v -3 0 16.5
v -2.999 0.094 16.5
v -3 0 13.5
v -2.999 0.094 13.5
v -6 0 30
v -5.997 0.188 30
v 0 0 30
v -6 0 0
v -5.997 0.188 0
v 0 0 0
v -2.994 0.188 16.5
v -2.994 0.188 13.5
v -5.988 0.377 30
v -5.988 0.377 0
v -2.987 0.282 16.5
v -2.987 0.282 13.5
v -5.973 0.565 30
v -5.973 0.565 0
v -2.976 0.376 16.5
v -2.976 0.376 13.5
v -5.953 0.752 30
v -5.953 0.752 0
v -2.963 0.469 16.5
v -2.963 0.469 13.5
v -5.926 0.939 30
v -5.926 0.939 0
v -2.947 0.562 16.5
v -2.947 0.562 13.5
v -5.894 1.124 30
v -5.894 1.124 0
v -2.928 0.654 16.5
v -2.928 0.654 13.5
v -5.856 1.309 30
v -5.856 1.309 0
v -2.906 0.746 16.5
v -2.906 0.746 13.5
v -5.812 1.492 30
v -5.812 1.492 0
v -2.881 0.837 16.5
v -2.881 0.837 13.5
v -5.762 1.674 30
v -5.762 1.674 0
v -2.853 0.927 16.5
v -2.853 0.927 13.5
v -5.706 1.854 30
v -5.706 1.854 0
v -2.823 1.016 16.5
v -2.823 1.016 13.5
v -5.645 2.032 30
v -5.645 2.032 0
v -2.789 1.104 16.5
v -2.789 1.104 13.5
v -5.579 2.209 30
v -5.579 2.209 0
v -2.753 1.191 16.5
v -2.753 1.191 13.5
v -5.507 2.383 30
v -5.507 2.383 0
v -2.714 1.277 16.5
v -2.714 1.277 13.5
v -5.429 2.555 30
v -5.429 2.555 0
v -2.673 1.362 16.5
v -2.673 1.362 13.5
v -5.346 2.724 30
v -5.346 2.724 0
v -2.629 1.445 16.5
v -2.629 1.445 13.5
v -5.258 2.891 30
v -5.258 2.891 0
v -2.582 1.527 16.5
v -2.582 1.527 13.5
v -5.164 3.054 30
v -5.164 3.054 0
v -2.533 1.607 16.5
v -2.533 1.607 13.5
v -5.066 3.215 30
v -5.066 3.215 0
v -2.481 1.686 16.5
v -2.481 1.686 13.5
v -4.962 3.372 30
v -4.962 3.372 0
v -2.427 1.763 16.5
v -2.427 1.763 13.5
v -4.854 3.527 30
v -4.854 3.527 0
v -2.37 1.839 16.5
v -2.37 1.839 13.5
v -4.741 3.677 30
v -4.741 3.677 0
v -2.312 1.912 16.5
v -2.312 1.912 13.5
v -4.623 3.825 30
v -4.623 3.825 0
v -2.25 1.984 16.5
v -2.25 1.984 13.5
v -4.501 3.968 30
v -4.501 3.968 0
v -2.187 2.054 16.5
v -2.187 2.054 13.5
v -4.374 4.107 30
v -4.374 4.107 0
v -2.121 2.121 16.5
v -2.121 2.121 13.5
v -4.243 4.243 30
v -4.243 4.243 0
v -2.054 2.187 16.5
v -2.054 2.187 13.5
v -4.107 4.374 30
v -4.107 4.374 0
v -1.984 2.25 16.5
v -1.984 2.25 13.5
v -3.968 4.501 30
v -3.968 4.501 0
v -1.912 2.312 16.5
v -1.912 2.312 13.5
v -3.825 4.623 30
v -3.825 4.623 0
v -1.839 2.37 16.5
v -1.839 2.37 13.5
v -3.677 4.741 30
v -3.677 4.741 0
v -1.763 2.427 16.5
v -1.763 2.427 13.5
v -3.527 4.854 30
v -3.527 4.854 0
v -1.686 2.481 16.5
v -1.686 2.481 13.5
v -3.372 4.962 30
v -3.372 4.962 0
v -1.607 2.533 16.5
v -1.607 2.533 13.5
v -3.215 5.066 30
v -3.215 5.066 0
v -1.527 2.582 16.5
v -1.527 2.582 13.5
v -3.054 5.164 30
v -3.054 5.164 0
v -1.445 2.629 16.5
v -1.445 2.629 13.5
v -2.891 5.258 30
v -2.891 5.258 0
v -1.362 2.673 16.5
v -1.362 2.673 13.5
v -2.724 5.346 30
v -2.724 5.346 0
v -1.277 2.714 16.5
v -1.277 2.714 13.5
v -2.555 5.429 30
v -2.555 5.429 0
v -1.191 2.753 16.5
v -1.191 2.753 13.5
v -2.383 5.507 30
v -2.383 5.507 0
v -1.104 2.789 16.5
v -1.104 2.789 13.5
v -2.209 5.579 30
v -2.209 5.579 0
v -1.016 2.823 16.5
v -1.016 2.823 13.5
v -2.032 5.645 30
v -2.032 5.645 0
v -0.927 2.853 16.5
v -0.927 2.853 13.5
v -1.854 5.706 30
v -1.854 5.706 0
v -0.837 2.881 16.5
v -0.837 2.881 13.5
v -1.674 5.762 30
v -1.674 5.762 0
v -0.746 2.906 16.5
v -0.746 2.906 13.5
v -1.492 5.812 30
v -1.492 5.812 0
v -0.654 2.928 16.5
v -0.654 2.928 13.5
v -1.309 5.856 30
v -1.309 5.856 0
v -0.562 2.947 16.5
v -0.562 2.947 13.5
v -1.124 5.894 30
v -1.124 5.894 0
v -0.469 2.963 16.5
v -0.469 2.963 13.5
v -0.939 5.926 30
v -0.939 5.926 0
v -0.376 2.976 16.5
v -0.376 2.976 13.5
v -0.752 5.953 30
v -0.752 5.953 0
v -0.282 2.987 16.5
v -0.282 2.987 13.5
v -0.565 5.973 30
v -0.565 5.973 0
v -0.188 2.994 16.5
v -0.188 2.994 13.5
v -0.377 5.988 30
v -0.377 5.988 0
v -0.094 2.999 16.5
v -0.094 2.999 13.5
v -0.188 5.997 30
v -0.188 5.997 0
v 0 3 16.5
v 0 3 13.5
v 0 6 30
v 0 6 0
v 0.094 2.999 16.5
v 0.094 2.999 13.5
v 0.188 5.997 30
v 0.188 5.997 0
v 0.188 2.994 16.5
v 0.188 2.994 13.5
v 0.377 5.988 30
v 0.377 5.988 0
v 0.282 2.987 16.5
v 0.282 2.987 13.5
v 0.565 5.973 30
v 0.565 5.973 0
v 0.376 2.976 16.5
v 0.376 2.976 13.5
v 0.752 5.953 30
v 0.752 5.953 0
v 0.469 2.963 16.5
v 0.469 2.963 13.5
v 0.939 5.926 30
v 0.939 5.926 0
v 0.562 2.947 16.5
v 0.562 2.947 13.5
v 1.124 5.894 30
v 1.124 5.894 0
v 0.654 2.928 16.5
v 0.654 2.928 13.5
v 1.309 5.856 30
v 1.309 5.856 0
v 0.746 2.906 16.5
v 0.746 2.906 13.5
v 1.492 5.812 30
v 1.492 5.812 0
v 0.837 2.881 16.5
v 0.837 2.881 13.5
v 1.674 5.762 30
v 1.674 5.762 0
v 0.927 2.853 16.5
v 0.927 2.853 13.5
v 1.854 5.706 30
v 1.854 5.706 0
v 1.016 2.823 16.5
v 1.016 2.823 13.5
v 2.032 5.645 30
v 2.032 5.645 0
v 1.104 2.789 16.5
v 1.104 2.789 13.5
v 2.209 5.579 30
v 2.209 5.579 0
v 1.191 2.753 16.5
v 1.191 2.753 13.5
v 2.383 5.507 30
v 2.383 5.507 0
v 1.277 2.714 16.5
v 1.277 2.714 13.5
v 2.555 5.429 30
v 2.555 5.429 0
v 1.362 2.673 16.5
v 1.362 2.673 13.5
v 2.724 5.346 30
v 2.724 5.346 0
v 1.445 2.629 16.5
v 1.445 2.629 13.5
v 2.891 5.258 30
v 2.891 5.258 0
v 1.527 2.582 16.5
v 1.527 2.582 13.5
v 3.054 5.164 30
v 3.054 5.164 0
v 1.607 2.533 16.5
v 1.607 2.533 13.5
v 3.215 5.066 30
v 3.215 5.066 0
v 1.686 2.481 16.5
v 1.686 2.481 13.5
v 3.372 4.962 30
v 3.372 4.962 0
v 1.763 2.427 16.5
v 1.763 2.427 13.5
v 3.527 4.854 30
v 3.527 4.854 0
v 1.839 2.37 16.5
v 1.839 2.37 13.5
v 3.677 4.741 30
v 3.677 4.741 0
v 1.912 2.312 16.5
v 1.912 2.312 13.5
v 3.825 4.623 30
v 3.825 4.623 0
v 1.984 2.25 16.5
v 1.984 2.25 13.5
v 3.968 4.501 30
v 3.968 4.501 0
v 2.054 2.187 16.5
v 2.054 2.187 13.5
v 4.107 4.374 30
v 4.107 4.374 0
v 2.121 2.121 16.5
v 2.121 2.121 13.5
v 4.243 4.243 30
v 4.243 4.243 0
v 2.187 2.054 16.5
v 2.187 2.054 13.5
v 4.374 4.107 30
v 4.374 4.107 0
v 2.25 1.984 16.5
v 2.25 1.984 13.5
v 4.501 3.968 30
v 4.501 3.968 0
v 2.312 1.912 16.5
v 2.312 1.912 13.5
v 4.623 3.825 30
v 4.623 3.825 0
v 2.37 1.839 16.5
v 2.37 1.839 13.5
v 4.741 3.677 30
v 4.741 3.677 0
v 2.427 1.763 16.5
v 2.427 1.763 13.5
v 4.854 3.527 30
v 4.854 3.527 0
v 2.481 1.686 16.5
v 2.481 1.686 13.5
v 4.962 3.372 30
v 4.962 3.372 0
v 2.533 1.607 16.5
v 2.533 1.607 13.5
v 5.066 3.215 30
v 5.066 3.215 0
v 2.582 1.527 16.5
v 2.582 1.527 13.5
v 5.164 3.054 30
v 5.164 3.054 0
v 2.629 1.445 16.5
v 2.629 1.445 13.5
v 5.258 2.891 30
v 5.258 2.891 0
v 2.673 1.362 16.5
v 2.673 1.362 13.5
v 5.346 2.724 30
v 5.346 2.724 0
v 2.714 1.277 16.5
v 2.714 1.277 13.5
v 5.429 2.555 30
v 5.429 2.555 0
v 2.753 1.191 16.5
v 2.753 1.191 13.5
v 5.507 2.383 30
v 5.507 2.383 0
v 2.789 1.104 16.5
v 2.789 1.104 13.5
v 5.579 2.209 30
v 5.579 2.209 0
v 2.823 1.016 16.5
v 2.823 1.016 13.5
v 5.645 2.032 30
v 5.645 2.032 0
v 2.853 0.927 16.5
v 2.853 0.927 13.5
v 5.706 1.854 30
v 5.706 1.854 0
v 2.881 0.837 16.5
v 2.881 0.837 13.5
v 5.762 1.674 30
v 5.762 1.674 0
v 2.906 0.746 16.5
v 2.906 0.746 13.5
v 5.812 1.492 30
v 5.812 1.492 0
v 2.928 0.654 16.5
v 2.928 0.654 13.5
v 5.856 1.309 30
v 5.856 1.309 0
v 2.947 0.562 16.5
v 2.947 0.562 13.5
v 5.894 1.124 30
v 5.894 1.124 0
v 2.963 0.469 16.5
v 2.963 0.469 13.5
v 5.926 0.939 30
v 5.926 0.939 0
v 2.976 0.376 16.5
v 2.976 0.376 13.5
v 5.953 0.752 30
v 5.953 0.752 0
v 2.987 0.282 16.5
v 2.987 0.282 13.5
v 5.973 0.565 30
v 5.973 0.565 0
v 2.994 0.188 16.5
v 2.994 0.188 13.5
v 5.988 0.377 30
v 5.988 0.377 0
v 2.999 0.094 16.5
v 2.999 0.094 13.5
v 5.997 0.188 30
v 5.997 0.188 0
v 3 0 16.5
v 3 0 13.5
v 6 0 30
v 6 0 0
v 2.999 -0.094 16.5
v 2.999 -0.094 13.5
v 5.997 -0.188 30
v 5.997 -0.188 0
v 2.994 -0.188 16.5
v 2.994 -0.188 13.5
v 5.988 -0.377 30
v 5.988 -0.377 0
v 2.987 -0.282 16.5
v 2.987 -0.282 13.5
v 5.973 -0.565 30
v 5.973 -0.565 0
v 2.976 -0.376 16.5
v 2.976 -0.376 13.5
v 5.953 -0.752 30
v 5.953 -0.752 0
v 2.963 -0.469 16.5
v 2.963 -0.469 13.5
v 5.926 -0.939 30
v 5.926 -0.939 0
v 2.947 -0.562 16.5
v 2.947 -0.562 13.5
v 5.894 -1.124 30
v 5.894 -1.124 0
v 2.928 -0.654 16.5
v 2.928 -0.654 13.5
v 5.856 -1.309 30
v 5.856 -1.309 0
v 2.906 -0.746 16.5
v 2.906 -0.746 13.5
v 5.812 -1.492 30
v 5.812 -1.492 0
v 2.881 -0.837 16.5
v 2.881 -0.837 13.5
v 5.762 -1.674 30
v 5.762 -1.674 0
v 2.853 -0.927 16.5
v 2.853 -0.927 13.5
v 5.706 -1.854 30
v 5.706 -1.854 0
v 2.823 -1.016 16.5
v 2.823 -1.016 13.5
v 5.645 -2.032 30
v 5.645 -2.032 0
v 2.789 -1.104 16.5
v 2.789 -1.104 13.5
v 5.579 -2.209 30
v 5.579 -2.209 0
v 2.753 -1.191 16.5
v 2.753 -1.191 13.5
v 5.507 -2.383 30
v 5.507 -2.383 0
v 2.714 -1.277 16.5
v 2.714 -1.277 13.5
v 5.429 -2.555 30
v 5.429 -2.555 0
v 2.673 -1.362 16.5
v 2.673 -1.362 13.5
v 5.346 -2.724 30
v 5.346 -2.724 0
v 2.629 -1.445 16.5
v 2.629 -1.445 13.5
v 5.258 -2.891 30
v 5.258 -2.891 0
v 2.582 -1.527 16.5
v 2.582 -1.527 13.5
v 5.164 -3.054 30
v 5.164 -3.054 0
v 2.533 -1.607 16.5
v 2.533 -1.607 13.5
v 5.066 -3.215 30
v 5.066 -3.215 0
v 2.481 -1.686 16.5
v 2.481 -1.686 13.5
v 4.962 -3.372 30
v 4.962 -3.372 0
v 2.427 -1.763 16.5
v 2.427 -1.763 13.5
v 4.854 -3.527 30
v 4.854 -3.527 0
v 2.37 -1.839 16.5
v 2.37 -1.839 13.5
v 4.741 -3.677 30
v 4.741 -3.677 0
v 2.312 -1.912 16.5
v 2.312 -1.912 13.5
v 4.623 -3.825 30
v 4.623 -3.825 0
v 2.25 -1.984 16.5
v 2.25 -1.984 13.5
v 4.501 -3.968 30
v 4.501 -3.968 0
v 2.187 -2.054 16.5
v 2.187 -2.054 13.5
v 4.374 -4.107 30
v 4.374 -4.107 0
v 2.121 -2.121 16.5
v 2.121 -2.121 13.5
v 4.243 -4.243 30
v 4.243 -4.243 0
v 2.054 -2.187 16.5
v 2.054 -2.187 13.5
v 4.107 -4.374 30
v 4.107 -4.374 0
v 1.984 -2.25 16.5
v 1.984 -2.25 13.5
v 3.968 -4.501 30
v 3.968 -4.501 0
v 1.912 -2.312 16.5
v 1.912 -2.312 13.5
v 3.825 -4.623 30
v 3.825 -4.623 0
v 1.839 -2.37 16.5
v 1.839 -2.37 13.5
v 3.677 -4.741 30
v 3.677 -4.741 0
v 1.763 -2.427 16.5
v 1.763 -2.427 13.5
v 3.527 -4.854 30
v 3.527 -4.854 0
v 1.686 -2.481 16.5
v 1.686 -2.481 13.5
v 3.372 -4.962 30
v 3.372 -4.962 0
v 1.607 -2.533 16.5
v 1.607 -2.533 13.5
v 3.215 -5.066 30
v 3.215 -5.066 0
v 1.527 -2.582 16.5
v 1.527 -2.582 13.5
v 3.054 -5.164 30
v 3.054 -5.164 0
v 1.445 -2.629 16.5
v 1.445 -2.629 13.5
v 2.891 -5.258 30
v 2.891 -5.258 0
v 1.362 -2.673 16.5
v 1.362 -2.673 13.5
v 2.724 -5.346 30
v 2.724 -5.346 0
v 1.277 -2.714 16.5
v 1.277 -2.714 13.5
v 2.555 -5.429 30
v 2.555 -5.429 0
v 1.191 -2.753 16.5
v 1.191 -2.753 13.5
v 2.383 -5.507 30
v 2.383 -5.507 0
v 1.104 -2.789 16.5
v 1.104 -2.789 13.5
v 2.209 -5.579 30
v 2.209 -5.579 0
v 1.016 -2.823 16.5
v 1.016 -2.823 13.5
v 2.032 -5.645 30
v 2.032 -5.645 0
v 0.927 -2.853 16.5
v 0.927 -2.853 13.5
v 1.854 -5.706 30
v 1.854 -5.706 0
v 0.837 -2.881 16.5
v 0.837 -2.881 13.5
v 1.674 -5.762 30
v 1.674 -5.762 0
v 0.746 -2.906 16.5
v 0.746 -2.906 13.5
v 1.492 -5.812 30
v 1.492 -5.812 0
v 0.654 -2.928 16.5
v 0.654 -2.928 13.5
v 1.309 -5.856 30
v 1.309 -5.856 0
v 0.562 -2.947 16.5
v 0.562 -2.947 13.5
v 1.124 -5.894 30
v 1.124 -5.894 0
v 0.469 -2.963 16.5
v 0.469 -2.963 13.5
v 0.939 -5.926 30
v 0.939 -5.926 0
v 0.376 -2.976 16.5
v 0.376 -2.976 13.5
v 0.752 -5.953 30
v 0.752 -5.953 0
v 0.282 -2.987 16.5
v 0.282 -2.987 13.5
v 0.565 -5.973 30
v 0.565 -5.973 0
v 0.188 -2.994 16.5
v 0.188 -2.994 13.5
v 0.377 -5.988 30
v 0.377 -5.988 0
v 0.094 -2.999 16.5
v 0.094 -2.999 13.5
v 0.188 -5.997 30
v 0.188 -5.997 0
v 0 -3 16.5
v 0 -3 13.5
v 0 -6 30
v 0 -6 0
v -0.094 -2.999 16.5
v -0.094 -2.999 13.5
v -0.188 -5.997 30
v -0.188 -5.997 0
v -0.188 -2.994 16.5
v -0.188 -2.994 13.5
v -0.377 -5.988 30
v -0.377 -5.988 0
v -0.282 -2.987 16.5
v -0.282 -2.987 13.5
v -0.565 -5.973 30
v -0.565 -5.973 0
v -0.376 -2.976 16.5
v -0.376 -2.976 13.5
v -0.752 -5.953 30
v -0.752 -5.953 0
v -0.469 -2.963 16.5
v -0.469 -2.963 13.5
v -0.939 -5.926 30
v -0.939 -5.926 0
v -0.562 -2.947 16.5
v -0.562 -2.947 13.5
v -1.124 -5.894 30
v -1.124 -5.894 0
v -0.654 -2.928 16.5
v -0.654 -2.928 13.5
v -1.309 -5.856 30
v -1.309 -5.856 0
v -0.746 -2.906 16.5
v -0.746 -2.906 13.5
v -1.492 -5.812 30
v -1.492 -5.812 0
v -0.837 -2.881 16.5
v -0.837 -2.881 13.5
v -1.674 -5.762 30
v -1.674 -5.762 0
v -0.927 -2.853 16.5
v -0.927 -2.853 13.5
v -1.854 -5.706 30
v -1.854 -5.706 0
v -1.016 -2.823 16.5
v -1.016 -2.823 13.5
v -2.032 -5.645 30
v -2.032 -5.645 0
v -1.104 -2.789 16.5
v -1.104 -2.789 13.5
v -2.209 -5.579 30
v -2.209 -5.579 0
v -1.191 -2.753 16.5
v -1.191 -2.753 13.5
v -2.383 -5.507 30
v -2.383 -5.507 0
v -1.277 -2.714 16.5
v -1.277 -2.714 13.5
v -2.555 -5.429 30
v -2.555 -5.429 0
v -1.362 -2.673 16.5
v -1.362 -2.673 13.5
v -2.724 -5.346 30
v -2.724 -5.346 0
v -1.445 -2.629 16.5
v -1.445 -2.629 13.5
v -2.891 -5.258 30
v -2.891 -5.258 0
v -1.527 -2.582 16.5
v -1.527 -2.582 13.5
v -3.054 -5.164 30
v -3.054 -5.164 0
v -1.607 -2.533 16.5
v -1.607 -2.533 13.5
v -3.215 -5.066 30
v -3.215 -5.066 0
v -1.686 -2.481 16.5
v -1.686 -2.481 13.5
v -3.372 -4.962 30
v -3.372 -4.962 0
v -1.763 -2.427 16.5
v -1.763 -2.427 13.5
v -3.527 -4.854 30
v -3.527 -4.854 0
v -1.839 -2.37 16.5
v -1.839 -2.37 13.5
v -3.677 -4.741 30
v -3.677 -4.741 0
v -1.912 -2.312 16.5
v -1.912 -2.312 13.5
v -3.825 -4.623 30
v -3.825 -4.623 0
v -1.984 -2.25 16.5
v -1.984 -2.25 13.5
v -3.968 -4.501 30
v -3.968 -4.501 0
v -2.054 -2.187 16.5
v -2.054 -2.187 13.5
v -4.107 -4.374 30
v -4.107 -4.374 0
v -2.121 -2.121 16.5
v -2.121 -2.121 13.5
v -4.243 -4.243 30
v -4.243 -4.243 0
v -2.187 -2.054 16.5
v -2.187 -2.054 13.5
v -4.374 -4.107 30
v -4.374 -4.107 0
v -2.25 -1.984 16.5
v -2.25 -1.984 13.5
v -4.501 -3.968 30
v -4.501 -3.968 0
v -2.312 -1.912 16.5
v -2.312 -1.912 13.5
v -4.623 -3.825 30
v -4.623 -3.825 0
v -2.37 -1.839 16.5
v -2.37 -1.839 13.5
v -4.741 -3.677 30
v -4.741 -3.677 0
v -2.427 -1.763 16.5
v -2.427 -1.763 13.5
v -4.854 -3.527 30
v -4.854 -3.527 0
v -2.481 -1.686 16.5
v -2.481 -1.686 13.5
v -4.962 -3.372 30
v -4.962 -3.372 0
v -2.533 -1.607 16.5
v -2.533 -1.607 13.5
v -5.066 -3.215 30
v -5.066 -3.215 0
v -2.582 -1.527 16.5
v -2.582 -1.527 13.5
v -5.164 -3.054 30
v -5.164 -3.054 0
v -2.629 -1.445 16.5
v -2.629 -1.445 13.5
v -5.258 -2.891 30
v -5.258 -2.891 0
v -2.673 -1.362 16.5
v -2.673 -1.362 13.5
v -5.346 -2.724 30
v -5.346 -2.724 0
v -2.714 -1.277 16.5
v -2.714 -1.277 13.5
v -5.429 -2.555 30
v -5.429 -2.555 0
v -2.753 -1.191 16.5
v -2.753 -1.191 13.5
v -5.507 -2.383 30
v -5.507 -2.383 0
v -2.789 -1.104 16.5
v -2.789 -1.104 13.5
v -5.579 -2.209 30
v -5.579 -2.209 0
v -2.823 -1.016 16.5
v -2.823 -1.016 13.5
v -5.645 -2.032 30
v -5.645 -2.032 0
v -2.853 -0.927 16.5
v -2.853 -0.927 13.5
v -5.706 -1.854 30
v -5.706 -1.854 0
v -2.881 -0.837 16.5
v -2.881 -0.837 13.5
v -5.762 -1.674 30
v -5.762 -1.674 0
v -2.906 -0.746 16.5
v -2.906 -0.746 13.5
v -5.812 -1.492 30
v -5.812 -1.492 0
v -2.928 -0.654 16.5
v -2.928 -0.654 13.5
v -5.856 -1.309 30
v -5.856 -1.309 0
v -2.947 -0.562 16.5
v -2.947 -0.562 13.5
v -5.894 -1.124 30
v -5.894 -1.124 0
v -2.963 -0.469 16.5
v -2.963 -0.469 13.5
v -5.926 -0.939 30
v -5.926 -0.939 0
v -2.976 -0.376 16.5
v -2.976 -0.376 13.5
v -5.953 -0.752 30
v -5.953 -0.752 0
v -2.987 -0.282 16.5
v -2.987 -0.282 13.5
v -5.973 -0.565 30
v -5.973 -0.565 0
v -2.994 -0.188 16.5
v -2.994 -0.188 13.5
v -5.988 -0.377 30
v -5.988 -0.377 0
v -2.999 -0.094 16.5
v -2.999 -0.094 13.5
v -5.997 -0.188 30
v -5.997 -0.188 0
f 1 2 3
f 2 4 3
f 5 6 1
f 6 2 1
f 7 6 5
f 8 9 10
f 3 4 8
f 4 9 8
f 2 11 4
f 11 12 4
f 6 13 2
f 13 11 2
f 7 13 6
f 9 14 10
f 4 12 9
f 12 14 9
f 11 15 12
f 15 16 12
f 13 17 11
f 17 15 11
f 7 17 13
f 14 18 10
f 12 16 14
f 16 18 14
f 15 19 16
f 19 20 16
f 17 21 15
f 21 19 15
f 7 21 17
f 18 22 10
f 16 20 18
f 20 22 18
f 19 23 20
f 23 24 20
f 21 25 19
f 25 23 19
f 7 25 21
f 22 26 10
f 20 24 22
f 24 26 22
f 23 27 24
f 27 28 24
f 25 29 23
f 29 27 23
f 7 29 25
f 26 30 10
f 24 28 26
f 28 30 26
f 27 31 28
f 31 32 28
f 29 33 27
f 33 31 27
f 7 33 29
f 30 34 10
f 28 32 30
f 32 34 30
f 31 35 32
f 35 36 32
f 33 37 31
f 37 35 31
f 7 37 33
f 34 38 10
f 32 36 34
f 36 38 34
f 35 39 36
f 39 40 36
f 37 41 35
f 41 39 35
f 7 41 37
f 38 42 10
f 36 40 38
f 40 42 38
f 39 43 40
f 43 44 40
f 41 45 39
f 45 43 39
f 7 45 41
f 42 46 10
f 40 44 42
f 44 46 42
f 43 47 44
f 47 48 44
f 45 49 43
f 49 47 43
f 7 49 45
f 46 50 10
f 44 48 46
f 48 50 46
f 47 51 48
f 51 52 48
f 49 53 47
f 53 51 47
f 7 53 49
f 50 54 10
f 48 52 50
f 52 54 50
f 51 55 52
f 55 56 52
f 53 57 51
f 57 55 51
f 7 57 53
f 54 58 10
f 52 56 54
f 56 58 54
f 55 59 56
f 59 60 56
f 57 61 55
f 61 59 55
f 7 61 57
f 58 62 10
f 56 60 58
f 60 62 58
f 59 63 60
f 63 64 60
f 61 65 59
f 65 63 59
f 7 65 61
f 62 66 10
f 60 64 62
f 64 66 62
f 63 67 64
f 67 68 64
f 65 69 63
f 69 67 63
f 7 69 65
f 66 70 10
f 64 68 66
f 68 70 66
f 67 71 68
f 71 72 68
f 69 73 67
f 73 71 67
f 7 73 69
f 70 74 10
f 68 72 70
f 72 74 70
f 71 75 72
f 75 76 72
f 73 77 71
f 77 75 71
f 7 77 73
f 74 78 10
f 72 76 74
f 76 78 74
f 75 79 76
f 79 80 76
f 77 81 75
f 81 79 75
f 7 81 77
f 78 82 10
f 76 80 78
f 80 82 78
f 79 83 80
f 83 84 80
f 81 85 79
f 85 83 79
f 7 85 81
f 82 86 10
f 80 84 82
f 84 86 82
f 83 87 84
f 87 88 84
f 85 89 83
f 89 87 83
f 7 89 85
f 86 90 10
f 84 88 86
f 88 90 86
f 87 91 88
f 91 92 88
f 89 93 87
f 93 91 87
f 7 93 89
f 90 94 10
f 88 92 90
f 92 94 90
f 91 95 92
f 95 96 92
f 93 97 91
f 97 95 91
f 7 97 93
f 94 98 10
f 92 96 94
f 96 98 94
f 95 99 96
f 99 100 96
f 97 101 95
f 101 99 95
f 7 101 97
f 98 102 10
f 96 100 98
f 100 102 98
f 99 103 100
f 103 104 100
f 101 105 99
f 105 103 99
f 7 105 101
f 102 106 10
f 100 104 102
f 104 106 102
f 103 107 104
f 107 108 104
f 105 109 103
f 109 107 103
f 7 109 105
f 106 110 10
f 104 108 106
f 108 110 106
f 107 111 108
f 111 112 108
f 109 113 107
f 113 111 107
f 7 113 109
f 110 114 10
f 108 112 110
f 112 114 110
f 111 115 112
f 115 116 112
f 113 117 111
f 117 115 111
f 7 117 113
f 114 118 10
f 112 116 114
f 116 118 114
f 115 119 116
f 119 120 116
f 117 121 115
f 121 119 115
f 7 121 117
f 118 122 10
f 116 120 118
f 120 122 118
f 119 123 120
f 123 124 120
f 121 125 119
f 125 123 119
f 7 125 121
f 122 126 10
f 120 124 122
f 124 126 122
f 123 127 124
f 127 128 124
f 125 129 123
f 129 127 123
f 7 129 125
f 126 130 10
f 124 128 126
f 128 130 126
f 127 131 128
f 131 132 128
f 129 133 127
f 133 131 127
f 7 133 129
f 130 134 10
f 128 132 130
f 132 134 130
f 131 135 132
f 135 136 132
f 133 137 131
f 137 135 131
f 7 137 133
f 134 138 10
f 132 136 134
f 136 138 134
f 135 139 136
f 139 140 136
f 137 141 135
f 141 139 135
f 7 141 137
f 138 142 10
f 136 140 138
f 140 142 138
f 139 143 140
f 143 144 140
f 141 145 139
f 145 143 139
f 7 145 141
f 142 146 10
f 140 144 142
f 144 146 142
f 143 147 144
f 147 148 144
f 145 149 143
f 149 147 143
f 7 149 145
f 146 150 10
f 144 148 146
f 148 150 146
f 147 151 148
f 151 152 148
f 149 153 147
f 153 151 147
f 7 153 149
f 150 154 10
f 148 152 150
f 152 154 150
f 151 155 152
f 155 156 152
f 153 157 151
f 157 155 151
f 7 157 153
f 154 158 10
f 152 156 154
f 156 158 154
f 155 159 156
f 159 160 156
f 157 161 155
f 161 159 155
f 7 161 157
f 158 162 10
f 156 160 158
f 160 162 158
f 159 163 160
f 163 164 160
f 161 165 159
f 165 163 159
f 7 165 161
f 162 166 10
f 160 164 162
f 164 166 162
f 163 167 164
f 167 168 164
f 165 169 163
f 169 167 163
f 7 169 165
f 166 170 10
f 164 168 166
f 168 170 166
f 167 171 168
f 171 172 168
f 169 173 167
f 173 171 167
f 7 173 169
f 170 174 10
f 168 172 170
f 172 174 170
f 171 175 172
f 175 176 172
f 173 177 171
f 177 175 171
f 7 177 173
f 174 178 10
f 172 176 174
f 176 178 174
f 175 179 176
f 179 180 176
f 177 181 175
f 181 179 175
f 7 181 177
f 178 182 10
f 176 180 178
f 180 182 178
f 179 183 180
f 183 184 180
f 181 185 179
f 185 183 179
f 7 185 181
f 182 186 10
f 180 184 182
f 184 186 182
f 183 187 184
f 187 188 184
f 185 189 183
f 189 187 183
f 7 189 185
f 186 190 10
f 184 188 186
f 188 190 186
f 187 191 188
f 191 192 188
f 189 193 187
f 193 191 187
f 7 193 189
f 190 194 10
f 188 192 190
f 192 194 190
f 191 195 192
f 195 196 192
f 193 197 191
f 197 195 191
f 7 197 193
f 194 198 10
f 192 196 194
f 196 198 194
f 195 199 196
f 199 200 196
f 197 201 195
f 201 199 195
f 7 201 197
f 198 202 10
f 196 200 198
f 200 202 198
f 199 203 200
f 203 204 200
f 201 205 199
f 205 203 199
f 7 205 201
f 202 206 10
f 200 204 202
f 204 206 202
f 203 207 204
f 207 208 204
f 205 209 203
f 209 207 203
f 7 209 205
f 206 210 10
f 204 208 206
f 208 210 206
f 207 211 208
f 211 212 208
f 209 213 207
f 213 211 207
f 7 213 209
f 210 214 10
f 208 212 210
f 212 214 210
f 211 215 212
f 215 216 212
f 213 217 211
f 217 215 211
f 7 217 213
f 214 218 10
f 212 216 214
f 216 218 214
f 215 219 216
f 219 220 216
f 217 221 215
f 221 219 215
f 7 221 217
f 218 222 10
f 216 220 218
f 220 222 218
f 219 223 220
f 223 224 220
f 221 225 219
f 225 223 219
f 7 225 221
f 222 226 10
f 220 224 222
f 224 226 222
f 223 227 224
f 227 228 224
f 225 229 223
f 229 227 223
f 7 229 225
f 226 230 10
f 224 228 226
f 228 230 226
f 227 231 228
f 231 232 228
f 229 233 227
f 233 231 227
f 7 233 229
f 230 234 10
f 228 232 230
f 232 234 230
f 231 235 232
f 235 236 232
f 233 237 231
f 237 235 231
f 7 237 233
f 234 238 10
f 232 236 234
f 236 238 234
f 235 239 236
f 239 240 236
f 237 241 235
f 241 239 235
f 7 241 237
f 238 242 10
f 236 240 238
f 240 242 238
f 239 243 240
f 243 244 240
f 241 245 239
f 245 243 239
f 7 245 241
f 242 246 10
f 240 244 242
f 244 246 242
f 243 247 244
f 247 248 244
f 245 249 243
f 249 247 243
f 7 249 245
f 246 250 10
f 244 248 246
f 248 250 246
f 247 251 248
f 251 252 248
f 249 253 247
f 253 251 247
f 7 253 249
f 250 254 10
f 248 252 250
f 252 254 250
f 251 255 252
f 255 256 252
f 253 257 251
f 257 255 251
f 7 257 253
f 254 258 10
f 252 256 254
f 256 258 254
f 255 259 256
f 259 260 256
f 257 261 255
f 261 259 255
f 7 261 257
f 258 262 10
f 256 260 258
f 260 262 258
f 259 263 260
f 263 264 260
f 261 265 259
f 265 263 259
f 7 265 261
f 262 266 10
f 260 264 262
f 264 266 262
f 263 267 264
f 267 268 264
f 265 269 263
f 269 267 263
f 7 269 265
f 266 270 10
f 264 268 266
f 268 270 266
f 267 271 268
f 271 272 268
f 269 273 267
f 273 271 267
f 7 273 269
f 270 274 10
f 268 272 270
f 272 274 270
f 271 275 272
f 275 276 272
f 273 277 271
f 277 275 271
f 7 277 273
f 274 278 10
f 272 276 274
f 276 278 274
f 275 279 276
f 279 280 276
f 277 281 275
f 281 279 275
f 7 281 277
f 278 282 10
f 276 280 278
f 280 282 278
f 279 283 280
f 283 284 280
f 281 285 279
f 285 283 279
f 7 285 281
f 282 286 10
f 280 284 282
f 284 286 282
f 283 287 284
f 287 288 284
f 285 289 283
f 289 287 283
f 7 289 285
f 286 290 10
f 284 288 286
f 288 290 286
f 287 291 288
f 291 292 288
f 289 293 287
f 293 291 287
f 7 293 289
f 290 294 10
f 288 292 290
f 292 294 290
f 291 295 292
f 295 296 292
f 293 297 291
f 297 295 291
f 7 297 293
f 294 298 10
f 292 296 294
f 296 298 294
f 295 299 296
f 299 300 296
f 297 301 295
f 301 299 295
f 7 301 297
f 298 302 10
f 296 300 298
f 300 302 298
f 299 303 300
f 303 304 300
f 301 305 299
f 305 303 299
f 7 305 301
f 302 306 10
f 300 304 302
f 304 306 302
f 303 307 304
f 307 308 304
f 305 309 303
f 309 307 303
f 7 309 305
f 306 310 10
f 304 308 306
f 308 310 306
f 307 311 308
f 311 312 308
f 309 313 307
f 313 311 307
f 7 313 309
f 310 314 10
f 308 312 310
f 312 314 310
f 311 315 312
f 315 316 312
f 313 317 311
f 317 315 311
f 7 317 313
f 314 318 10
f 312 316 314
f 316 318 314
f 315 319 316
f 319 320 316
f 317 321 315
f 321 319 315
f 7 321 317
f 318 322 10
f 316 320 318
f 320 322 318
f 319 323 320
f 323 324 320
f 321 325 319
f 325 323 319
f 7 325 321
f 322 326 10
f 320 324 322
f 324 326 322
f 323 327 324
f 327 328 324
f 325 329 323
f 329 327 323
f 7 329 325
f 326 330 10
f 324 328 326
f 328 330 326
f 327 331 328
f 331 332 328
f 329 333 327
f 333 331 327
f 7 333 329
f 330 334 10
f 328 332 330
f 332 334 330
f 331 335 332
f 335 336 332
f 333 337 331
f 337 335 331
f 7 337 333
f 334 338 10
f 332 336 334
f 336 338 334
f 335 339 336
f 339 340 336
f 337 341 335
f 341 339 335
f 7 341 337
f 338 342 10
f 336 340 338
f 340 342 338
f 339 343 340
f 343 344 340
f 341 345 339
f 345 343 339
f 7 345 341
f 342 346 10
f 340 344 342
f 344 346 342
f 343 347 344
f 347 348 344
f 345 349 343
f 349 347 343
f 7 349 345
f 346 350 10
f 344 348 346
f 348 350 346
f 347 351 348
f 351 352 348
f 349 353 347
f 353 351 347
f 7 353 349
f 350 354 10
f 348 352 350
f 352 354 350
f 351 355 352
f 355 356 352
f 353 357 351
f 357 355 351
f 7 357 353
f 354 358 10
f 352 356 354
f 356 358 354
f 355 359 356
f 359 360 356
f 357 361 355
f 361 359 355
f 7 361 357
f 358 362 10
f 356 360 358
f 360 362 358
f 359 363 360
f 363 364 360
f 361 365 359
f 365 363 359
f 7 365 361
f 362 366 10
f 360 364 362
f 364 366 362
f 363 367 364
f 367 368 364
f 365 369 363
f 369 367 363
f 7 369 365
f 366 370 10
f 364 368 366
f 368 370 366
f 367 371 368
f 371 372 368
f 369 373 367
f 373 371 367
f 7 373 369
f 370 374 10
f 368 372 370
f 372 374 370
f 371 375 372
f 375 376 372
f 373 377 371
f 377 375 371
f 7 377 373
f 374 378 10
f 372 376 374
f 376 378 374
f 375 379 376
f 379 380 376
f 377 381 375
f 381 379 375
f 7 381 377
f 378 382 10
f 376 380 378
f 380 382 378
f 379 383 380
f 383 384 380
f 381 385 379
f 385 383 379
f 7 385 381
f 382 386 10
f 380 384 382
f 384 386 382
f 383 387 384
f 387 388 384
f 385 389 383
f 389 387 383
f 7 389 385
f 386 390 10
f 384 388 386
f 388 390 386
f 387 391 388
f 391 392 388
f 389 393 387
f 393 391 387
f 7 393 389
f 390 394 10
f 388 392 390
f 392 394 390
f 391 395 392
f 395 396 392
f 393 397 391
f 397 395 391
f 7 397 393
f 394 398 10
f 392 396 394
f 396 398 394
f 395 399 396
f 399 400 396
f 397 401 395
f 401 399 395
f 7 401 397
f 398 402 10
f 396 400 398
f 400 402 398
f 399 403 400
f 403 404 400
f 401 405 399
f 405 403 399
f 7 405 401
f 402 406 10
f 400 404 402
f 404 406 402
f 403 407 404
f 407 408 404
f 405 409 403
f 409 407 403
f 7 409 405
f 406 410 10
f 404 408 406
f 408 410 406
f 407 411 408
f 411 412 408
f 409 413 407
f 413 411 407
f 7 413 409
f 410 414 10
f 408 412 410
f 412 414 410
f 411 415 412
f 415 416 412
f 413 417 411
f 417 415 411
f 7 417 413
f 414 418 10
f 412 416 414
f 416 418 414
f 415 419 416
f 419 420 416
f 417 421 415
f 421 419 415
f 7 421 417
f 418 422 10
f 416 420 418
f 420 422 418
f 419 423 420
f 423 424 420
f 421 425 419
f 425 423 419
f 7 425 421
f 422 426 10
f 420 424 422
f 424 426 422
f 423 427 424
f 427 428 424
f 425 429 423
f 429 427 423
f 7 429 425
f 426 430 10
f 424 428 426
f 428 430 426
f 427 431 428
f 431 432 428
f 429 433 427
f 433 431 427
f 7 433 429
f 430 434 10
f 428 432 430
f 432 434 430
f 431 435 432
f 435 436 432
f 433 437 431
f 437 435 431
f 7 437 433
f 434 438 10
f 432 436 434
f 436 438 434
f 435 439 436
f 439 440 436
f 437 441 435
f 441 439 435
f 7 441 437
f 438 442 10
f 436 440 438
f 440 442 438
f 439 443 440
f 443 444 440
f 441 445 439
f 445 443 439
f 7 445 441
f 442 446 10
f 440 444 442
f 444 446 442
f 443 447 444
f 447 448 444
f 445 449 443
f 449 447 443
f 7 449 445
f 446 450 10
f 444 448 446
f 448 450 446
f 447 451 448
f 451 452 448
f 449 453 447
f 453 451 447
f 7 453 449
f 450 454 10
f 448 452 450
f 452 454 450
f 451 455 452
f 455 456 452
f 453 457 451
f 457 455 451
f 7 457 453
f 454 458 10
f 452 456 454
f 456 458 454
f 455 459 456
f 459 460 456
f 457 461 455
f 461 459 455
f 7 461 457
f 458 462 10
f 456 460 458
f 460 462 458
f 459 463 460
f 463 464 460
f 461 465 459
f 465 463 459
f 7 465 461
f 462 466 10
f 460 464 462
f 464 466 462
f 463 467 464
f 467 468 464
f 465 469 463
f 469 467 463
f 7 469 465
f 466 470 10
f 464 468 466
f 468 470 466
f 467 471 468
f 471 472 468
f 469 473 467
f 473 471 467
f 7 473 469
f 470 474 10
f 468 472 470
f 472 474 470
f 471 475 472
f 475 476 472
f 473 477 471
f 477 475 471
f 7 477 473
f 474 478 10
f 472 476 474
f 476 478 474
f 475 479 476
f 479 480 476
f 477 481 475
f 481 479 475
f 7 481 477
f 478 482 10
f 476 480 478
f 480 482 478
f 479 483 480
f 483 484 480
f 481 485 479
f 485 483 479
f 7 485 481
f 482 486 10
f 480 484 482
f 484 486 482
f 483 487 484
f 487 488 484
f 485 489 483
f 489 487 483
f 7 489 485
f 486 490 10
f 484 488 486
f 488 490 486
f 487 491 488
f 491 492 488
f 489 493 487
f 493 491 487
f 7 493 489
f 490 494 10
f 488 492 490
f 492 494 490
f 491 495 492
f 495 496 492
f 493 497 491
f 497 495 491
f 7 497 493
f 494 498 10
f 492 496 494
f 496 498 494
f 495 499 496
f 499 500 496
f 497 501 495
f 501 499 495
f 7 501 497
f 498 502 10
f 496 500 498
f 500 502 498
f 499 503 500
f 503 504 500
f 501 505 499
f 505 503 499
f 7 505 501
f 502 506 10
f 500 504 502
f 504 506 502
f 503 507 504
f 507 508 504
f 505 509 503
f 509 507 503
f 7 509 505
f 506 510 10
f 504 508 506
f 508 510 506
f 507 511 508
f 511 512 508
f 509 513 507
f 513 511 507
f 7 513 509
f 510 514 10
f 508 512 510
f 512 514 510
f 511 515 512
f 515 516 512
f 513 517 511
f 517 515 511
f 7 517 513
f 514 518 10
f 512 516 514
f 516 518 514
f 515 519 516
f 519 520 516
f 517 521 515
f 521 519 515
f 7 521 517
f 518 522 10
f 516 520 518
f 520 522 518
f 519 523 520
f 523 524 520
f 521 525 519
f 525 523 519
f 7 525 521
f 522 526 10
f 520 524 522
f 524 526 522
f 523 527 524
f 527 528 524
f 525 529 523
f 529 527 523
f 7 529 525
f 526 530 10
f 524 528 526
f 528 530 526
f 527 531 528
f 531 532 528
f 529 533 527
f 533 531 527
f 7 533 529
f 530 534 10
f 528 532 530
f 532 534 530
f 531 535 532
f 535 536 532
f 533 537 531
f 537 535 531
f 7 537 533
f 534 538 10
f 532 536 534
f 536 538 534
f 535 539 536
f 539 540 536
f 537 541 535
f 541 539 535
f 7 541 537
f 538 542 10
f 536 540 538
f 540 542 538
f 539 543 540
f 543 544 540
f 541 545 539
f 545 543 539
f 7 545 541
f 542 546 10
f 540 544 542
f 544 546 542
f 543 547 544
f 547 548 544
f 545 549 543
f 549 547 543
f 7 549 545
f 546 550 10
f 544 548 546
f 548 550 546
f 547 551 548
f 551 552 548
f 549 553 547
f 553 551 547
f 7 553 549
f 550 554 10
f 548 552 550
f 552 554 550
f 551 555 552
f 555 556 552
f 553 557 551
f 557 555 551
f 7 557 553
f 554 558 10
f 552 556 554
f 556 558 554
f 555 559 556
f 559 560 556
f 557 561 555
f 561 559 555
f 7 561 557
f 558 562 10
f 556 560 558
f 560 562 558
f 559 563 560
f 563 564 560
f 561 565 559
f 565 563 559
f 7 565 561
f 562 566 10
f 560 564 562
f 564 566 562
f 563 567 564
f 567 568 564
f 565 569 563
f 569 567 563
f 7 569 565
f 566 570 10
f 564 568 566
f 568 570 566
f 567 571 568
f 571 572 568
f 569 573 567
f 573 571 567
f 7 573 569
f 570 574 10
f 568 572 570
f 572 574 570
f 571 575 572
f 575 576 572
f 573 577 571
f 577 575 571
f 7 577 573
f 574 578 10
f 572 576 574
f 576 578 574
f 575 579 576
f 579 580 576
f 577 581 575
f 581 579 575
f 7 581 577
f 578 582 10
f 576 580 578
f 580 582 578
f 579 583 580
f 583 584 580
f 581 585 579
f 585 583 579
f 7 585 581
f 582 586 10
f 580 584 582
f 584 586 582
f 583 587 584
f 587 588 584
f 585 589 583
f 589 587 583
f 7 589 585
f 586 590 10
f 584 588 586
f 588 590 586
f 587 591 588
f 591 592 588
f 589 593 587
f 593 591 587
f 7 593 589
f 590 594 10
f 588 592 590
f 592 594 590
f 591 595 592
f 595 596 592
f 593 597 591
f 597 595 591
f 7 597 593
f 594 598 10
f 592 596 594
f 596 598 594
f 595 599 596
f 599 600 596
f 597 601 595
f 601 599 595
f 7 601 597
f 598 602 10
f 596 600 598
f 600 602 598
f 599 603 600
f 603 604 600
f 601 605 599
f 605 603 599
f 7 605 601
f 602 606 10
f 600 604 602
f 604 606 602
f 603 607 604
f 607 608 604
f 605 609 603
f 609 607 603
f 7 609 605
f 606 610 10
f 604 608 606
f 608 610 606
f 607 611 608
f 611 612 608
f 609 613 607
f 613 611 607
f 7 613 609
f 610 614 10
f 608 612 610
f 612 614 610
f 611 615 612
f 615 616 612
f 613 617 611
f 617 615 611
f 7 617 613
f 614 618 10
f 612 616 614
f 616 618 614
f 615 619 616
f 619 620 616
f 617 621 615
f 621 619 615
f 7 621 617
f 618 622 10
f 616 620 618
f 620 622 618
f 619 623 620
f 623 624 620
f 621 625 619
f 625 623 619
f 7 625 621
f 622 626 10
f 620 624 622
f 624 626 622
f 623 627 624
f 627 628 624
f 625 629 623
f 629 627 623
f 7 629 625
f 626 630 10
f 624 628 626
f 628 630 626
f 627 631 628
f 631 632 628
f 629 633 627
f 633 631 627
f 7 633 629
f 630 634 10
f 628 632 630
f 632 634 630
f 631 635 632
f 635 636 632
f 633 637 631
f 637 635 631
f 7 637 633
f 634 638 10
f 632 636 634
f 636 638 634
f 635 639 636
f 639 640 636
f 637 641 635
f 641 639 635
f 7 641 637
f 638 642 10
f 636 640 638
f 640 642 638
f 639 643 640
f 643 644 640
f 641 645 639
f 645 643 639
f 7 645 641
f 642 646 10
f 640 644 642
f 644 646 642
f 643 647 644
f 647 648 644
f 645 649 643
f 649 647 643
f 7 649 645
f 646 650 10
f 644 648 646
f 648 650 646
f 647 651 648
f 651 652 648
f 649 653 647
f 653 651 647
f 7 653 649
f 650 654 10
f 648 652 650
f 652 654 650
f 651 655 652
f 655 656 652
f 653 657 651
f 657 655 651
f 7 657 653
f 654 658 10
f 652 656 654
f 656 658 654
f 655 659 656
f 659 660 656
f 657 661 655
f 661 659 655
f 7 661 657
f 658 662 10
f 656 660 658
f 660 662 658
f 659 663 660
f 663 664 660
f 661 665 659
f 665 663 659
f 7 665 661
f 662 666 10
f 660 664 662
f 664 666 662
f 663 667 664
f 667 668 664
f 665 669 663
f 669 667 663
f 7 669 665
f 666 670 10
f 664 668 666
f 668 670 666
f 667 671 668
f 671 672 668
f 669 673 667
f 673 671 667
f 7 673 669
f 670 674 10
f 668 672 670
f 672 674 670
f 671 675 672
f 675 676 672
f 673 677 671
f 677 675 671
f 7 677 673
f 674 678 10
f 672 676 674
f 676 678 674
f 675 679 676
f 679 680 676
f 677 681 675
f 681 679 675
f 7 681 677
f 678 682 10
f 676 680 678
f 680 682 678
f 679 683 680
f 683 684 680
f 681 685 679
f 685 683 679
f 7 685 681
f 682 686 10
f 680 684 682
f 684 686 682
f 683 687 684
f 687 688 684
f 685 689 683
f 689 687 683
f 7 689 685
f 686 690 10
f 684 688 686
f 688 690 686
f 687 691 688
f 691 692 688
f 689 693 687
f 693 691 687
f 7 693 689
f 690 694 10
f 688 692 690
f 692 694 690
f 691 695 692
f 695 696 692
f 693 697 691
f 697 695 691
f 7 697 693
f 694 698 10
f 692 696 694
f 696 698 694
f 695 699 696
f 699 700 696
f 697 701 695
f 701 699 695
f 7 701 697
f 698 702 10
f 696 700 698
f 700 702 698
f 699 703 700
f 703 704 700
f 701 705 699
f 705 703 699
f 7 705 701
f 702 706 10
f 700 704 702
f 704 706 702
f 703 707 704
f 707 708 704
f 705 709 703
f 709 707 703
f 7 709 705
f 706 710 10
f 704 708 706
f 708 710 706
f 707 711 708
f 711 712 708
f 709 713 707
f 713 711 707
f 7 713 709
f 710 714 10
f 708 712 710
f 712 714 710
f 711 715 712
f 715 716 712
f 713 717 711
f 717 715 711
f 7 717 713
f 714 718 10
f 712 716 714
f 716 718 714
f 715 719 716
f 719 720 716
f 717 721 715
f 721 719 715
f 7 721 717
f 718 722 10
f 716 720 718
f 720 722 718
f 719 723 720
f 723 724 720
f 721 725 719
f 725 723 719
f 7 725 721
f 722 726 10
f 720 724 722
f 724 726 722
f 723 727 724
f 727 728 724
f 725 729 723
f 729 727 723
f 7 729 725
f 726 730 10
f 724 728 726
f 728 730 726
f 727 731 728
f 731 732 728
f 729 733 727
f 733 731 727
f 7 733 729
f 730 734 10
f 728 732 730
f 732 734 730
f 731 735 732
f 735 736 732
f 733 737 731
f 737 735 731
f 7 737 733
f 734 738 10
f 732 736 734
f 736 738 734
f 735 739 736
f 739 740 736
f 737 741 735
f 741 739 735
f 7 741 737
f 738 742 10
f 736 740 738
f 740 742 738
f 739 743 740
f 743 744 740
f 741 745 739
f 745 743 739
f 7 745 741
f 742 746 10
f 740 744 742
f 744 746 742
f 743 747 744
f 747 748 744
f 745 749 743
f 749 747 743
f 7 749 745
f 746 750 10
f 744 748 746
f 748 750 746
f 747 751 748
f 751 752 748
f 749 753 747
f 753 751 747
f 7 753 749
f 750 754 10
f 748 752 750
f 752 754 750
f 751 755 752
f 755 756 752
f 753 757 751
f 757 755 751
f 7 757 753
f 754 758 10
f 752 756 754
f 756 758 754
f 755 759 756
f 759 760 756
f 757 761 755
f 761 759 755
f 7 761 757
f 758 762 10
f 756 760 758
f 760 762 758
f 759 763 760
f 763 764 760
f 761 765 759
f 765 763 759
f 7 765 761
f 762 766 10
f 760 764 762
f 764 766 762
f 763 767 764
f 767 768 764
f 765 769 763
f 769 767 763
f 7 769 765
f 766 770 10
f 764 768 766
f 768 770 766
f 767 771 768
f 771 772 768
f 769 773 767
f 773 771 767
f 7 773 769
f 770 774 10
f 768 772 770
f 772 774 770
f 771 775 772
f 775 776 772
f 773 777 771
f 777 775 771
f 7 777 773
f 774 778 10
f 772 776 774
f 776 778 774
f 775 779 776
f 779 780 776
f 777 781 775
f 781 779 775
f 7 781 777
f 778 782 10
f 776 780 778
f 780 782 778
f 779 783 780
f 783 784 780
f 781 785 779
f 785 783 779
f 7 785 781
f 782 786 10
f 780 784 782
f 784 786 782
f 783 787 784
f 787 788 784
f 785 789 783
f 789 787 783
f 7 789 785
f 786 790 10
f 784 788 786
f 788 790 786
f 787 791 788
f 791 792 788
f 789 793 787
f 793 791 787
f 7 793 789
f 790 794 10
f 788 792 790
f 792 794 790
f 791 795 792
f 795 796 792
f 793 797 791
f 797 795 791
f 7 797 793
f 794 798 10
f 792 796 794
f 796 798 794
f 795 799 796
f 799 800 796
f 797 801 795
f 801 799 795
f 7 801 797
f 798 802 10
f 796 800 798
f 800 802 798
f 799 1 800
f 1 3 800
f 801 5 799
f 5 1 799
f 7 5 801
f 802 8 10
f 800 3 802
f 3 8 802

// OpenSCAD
// diy bongo tie 
// set the height to adjust size 

height = 30;

// calculate dimensions 
waistRadius = (height/100)*10;
topRadius = (waistRadius *2);
waistStart = (height - waistRadius)/2; 
waistEnd = waistStart+waistRadius; 

// extrude polygon 
rotate_extrude($fn=200)
polygon(points=[[0,0],
                [topRadius,0],
                [waistRadius,waistStart],
                [waistRadius,waistEnd],
                [topRadius,height],
                [0,height] ]);
